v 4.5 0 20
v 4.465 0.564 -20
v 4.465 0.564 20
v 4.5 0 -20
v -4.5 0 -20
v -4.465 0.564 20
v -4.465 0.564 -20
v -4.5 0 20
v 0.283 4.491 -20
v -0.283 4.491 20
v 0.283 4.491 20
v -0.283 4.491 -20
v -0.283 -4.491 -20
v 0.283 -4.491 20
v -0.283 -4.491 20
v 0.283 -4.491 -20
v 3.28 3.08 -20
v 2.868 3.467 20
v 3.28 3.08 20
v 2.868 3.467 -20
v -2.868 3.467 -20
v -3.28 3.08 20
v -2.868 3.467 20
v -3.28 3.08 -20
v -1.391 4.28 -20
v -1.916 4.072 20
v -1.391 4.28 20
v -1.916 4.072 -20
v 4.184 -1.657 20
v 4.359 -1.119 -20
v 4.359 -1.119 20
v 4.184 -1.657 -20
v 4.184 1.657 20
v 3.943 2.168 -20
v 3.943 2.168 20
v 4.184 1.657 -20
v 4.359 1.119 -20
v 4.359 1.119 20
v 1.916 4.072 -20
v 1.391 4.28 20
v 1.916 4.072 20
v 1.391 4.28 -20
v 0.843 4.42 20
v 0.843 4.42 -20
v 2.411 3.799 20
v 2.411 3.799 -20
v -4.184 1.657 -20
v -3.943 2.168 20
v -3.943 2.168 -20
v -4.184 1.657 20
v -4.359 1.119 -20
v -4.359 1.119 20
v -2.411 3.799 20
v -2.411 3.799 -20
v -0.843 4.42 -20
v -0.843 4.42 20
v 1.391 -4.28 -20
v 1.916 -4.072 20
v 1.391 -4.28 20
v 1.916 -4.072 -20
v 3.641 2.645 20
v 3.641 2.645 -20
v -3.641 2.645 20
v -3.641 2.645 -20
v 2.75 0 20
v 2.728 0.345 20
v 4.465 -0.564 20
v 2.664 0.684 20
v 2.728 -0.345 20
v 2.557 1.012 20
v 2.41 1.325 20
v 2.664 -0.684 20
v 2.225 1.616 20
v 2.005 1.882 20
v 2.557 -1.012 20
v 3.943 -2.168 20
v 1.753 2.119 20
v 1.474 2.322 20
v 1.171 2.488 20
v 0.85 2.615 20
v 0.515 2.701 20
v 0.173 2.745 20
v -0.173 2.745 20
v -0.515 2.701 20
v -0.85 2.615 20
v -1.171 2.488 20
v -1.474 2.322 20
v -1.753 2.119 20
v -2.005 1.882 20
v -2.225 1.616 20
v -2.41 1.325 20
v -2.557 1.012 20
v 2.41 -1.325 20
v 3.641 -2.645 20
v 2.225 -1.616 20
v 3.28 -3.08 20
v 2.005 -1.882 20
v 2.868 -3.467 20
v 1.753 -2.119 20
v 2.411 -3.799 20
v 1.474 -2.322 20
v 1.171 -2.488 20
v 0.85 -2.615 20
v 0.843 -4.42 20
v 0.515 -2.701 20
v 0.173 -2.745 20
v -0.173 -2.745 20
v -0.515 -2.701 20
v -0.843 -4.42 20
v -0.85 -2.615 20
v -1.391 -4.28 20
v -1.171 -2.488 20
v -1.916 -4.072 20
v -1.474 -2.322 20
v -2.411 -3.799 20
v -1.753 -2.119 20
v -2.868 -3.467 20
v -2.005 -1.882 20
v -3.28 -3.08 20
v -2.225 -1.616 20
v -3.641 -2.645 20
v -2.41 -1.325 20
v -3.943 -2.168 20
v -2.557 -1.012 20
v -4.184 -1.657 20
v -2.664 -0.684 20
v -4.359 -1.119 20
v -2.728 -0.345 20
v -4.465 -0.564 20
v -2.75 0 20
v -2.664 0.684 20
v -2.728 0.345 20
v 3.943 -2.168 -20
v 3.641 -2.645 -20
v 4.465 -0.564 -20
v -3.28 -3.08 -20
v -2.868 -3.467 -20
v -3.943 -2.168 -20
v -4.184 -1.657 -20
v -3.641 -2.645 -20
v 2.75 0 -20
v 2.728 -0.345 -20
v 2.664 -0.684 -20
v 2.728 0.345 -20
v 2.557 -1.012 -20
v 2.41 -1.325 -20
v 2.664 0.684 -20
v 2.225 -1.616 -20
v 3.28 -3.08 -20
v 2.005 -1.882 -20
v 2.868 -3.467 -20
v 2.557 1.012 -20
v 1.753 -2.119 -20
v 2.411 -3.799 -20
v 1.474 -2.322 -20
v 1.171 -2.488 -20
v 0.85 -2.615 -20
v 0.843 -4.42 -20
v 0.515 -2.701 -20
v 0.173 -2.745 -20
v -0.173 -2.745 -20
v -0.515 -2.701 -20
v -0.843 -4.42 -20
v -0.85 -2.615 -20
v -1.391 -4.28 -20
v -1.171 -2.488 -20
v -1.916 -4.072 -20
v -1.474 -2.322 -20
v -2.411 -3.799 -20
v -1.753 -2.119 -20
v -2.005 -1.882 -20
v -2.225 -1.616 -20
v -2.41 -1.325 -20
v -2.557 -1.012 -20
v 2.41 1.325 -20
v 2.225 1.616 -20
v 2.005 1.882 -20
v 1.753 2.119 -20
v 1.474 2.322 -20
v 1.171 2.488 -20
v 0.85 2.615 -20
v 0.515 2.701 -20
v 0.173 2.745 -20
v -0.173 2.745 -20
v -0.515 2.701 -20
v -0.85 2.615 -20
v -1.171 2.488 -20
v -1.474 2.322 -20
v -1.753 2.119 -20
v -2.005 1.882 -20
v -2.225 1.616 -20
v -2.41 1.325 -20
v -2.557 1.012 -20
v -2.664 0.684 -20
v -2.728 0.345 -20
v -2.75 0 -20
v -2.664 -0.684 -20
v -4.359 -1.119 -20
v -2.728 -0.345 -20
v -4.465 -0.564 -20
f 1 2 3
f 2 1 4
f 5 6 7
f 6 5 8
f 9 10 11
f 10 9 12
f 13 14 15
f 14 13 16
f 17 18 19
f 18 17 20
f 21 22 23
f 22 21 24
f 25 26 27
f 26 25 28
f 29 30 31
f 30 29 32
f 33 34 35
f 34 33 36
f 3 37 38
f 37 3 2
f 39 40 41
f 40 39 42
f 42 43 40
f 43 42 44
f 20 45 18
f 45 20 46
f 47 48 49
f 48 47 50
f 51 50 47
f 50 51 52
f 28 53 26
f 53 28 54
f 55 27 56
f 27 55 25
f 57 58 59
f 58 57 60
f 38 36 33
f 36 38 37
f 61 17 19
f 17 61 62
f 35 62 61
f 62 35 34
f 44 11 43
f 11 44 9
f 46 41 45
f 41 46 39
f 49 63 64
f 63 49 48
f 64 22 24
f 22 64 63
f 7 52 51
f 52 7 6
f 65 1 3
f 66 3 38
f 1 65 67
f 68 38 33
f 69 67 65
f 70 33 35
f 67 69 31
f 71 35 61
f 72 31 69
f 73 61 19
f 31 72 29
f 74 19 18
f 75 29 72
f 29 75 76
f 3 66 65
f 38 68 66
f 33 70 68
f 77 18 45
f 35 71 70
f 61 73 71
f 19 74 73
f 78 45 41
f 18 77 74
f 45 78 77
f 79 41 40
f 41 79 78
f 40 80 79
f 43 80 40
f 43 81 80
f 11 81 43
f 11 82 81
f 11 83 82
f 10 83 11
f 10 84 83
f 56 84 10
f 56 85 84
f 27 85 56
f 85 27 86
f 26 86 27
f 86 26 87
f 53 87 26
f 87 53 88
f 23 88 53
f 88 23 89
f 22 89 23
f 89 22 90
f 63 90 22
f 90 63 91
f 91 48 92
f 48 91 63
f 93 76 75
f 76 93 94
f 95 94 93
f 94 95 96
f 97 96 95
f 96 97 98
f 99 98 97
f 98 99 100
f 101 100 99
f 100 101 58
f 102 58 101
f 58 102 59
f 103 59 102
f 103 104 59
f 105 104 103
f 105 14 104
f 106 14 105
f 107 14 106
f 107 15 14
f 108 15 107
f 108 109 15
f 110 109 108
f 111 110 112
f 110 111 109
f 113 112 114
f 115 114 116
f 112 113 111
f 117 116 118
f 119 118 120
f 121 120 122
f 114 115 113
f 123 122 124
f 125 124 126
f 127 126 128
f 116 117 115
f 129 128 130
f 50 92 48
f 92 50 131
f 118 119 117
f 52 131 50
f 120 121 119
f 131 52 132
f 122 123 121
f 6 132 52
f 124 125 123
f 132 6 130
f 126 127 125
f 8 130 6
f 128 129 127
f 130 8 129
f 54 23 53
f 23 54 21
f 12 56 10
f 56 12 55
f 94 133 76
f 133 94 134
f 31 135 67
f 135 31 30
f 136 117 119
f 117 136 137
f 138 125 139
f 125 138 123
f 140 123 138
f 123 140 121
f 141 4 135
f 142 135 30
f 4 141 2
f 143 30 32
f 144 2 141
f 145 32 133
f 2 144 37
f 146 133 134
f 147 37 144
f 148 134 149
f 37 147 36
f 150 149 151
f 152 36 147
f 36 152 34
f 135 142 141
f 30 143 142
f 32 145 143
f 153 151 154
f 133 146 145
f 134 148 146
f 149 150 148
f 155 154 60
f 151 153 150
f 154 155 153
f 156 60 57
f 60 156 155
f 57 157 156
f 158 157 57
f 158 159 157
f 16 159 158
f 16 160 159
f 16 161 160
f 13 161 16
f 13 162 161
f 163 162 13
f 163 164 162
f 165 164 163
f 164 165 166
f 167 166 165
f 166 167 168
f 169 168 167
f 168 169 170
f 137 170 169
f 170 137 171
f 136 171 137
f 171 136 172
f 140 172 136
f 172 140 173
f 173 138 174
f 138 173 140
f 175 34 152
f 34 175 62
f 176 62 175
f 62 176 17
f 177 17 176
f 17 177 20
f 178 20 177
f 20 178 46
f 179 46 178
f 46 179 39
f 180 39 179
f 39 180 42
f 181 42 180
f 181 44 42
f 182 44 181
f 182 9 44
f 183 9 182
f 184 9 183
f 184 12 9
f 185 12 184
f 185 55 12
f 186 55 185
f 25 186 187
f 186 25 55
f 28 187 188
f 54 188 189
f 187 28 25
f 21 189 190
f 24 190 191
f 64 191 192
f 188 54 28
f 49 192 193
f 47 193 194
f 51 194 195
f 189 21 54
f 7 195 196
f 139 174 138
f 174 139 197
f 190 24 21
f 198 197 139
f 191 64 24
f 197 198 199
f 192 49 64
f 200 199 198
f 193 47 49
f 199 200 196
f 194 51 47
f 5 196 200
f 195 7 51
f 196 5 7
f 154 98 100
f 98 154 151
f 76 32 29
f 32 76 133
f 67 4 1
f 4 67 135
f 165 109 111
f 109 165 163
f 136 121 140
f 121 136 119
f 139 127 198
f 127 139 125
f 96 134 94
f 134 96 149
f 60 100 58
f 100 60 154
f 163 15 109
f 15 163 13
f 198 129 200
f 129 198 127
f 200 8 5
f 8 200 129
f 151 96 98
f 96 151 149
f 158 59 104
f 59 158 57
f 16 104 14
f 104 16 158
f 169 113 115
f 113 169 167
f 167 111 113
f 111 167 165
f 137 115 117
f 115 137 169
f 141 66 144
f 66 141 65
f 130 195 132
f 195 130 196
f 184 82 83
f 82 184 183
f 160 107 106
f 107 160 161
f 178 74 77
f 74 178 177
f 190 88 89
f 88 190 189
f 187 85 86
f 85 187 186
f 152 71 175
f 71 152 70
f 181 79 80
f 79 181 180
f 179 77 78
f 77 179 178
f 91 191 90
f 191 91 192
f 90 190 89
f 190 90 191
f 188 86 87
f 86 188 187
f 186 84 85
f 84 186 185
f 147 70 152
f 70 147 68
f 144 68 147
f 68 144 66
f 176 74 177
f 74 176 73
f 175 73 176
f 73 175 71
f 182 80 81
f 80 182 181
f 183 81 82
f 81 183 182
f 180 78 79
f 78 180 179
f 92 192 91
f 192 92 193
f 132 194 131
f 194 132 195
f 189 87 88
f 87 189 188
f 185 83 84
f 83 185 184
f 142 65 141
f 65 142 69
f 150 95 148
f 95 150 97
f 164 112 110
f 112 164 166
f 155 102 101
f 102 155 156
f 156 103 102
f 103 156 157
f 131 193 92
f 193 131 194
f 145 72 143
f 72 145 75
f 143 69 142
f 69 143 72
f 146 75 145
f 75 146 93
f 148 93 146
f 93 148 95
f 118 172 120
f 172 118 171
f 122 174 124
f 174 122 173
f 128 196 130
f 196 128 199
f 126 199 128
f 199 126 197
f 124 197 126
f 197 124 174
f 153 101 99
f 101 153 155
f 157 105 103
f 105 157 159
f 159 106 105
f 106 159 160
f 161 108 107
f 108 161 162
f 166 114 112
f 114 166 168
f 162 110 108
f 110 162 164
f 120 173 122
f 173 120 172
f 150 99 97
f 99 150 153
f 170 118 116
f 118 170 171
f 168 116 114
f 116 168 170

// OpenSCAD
$fn = 50;


difference() {
	union() {
		translate(v = [0, 0, -20.0000000000]) {
			cylinder(h = 40, r = 4.5000000000);
		}
	}
	union() {
		translate(v = [0, 0, -100.0000000000]) {
			cylinder(h = 200, r = 2.7500000000);
		}
	}
}
